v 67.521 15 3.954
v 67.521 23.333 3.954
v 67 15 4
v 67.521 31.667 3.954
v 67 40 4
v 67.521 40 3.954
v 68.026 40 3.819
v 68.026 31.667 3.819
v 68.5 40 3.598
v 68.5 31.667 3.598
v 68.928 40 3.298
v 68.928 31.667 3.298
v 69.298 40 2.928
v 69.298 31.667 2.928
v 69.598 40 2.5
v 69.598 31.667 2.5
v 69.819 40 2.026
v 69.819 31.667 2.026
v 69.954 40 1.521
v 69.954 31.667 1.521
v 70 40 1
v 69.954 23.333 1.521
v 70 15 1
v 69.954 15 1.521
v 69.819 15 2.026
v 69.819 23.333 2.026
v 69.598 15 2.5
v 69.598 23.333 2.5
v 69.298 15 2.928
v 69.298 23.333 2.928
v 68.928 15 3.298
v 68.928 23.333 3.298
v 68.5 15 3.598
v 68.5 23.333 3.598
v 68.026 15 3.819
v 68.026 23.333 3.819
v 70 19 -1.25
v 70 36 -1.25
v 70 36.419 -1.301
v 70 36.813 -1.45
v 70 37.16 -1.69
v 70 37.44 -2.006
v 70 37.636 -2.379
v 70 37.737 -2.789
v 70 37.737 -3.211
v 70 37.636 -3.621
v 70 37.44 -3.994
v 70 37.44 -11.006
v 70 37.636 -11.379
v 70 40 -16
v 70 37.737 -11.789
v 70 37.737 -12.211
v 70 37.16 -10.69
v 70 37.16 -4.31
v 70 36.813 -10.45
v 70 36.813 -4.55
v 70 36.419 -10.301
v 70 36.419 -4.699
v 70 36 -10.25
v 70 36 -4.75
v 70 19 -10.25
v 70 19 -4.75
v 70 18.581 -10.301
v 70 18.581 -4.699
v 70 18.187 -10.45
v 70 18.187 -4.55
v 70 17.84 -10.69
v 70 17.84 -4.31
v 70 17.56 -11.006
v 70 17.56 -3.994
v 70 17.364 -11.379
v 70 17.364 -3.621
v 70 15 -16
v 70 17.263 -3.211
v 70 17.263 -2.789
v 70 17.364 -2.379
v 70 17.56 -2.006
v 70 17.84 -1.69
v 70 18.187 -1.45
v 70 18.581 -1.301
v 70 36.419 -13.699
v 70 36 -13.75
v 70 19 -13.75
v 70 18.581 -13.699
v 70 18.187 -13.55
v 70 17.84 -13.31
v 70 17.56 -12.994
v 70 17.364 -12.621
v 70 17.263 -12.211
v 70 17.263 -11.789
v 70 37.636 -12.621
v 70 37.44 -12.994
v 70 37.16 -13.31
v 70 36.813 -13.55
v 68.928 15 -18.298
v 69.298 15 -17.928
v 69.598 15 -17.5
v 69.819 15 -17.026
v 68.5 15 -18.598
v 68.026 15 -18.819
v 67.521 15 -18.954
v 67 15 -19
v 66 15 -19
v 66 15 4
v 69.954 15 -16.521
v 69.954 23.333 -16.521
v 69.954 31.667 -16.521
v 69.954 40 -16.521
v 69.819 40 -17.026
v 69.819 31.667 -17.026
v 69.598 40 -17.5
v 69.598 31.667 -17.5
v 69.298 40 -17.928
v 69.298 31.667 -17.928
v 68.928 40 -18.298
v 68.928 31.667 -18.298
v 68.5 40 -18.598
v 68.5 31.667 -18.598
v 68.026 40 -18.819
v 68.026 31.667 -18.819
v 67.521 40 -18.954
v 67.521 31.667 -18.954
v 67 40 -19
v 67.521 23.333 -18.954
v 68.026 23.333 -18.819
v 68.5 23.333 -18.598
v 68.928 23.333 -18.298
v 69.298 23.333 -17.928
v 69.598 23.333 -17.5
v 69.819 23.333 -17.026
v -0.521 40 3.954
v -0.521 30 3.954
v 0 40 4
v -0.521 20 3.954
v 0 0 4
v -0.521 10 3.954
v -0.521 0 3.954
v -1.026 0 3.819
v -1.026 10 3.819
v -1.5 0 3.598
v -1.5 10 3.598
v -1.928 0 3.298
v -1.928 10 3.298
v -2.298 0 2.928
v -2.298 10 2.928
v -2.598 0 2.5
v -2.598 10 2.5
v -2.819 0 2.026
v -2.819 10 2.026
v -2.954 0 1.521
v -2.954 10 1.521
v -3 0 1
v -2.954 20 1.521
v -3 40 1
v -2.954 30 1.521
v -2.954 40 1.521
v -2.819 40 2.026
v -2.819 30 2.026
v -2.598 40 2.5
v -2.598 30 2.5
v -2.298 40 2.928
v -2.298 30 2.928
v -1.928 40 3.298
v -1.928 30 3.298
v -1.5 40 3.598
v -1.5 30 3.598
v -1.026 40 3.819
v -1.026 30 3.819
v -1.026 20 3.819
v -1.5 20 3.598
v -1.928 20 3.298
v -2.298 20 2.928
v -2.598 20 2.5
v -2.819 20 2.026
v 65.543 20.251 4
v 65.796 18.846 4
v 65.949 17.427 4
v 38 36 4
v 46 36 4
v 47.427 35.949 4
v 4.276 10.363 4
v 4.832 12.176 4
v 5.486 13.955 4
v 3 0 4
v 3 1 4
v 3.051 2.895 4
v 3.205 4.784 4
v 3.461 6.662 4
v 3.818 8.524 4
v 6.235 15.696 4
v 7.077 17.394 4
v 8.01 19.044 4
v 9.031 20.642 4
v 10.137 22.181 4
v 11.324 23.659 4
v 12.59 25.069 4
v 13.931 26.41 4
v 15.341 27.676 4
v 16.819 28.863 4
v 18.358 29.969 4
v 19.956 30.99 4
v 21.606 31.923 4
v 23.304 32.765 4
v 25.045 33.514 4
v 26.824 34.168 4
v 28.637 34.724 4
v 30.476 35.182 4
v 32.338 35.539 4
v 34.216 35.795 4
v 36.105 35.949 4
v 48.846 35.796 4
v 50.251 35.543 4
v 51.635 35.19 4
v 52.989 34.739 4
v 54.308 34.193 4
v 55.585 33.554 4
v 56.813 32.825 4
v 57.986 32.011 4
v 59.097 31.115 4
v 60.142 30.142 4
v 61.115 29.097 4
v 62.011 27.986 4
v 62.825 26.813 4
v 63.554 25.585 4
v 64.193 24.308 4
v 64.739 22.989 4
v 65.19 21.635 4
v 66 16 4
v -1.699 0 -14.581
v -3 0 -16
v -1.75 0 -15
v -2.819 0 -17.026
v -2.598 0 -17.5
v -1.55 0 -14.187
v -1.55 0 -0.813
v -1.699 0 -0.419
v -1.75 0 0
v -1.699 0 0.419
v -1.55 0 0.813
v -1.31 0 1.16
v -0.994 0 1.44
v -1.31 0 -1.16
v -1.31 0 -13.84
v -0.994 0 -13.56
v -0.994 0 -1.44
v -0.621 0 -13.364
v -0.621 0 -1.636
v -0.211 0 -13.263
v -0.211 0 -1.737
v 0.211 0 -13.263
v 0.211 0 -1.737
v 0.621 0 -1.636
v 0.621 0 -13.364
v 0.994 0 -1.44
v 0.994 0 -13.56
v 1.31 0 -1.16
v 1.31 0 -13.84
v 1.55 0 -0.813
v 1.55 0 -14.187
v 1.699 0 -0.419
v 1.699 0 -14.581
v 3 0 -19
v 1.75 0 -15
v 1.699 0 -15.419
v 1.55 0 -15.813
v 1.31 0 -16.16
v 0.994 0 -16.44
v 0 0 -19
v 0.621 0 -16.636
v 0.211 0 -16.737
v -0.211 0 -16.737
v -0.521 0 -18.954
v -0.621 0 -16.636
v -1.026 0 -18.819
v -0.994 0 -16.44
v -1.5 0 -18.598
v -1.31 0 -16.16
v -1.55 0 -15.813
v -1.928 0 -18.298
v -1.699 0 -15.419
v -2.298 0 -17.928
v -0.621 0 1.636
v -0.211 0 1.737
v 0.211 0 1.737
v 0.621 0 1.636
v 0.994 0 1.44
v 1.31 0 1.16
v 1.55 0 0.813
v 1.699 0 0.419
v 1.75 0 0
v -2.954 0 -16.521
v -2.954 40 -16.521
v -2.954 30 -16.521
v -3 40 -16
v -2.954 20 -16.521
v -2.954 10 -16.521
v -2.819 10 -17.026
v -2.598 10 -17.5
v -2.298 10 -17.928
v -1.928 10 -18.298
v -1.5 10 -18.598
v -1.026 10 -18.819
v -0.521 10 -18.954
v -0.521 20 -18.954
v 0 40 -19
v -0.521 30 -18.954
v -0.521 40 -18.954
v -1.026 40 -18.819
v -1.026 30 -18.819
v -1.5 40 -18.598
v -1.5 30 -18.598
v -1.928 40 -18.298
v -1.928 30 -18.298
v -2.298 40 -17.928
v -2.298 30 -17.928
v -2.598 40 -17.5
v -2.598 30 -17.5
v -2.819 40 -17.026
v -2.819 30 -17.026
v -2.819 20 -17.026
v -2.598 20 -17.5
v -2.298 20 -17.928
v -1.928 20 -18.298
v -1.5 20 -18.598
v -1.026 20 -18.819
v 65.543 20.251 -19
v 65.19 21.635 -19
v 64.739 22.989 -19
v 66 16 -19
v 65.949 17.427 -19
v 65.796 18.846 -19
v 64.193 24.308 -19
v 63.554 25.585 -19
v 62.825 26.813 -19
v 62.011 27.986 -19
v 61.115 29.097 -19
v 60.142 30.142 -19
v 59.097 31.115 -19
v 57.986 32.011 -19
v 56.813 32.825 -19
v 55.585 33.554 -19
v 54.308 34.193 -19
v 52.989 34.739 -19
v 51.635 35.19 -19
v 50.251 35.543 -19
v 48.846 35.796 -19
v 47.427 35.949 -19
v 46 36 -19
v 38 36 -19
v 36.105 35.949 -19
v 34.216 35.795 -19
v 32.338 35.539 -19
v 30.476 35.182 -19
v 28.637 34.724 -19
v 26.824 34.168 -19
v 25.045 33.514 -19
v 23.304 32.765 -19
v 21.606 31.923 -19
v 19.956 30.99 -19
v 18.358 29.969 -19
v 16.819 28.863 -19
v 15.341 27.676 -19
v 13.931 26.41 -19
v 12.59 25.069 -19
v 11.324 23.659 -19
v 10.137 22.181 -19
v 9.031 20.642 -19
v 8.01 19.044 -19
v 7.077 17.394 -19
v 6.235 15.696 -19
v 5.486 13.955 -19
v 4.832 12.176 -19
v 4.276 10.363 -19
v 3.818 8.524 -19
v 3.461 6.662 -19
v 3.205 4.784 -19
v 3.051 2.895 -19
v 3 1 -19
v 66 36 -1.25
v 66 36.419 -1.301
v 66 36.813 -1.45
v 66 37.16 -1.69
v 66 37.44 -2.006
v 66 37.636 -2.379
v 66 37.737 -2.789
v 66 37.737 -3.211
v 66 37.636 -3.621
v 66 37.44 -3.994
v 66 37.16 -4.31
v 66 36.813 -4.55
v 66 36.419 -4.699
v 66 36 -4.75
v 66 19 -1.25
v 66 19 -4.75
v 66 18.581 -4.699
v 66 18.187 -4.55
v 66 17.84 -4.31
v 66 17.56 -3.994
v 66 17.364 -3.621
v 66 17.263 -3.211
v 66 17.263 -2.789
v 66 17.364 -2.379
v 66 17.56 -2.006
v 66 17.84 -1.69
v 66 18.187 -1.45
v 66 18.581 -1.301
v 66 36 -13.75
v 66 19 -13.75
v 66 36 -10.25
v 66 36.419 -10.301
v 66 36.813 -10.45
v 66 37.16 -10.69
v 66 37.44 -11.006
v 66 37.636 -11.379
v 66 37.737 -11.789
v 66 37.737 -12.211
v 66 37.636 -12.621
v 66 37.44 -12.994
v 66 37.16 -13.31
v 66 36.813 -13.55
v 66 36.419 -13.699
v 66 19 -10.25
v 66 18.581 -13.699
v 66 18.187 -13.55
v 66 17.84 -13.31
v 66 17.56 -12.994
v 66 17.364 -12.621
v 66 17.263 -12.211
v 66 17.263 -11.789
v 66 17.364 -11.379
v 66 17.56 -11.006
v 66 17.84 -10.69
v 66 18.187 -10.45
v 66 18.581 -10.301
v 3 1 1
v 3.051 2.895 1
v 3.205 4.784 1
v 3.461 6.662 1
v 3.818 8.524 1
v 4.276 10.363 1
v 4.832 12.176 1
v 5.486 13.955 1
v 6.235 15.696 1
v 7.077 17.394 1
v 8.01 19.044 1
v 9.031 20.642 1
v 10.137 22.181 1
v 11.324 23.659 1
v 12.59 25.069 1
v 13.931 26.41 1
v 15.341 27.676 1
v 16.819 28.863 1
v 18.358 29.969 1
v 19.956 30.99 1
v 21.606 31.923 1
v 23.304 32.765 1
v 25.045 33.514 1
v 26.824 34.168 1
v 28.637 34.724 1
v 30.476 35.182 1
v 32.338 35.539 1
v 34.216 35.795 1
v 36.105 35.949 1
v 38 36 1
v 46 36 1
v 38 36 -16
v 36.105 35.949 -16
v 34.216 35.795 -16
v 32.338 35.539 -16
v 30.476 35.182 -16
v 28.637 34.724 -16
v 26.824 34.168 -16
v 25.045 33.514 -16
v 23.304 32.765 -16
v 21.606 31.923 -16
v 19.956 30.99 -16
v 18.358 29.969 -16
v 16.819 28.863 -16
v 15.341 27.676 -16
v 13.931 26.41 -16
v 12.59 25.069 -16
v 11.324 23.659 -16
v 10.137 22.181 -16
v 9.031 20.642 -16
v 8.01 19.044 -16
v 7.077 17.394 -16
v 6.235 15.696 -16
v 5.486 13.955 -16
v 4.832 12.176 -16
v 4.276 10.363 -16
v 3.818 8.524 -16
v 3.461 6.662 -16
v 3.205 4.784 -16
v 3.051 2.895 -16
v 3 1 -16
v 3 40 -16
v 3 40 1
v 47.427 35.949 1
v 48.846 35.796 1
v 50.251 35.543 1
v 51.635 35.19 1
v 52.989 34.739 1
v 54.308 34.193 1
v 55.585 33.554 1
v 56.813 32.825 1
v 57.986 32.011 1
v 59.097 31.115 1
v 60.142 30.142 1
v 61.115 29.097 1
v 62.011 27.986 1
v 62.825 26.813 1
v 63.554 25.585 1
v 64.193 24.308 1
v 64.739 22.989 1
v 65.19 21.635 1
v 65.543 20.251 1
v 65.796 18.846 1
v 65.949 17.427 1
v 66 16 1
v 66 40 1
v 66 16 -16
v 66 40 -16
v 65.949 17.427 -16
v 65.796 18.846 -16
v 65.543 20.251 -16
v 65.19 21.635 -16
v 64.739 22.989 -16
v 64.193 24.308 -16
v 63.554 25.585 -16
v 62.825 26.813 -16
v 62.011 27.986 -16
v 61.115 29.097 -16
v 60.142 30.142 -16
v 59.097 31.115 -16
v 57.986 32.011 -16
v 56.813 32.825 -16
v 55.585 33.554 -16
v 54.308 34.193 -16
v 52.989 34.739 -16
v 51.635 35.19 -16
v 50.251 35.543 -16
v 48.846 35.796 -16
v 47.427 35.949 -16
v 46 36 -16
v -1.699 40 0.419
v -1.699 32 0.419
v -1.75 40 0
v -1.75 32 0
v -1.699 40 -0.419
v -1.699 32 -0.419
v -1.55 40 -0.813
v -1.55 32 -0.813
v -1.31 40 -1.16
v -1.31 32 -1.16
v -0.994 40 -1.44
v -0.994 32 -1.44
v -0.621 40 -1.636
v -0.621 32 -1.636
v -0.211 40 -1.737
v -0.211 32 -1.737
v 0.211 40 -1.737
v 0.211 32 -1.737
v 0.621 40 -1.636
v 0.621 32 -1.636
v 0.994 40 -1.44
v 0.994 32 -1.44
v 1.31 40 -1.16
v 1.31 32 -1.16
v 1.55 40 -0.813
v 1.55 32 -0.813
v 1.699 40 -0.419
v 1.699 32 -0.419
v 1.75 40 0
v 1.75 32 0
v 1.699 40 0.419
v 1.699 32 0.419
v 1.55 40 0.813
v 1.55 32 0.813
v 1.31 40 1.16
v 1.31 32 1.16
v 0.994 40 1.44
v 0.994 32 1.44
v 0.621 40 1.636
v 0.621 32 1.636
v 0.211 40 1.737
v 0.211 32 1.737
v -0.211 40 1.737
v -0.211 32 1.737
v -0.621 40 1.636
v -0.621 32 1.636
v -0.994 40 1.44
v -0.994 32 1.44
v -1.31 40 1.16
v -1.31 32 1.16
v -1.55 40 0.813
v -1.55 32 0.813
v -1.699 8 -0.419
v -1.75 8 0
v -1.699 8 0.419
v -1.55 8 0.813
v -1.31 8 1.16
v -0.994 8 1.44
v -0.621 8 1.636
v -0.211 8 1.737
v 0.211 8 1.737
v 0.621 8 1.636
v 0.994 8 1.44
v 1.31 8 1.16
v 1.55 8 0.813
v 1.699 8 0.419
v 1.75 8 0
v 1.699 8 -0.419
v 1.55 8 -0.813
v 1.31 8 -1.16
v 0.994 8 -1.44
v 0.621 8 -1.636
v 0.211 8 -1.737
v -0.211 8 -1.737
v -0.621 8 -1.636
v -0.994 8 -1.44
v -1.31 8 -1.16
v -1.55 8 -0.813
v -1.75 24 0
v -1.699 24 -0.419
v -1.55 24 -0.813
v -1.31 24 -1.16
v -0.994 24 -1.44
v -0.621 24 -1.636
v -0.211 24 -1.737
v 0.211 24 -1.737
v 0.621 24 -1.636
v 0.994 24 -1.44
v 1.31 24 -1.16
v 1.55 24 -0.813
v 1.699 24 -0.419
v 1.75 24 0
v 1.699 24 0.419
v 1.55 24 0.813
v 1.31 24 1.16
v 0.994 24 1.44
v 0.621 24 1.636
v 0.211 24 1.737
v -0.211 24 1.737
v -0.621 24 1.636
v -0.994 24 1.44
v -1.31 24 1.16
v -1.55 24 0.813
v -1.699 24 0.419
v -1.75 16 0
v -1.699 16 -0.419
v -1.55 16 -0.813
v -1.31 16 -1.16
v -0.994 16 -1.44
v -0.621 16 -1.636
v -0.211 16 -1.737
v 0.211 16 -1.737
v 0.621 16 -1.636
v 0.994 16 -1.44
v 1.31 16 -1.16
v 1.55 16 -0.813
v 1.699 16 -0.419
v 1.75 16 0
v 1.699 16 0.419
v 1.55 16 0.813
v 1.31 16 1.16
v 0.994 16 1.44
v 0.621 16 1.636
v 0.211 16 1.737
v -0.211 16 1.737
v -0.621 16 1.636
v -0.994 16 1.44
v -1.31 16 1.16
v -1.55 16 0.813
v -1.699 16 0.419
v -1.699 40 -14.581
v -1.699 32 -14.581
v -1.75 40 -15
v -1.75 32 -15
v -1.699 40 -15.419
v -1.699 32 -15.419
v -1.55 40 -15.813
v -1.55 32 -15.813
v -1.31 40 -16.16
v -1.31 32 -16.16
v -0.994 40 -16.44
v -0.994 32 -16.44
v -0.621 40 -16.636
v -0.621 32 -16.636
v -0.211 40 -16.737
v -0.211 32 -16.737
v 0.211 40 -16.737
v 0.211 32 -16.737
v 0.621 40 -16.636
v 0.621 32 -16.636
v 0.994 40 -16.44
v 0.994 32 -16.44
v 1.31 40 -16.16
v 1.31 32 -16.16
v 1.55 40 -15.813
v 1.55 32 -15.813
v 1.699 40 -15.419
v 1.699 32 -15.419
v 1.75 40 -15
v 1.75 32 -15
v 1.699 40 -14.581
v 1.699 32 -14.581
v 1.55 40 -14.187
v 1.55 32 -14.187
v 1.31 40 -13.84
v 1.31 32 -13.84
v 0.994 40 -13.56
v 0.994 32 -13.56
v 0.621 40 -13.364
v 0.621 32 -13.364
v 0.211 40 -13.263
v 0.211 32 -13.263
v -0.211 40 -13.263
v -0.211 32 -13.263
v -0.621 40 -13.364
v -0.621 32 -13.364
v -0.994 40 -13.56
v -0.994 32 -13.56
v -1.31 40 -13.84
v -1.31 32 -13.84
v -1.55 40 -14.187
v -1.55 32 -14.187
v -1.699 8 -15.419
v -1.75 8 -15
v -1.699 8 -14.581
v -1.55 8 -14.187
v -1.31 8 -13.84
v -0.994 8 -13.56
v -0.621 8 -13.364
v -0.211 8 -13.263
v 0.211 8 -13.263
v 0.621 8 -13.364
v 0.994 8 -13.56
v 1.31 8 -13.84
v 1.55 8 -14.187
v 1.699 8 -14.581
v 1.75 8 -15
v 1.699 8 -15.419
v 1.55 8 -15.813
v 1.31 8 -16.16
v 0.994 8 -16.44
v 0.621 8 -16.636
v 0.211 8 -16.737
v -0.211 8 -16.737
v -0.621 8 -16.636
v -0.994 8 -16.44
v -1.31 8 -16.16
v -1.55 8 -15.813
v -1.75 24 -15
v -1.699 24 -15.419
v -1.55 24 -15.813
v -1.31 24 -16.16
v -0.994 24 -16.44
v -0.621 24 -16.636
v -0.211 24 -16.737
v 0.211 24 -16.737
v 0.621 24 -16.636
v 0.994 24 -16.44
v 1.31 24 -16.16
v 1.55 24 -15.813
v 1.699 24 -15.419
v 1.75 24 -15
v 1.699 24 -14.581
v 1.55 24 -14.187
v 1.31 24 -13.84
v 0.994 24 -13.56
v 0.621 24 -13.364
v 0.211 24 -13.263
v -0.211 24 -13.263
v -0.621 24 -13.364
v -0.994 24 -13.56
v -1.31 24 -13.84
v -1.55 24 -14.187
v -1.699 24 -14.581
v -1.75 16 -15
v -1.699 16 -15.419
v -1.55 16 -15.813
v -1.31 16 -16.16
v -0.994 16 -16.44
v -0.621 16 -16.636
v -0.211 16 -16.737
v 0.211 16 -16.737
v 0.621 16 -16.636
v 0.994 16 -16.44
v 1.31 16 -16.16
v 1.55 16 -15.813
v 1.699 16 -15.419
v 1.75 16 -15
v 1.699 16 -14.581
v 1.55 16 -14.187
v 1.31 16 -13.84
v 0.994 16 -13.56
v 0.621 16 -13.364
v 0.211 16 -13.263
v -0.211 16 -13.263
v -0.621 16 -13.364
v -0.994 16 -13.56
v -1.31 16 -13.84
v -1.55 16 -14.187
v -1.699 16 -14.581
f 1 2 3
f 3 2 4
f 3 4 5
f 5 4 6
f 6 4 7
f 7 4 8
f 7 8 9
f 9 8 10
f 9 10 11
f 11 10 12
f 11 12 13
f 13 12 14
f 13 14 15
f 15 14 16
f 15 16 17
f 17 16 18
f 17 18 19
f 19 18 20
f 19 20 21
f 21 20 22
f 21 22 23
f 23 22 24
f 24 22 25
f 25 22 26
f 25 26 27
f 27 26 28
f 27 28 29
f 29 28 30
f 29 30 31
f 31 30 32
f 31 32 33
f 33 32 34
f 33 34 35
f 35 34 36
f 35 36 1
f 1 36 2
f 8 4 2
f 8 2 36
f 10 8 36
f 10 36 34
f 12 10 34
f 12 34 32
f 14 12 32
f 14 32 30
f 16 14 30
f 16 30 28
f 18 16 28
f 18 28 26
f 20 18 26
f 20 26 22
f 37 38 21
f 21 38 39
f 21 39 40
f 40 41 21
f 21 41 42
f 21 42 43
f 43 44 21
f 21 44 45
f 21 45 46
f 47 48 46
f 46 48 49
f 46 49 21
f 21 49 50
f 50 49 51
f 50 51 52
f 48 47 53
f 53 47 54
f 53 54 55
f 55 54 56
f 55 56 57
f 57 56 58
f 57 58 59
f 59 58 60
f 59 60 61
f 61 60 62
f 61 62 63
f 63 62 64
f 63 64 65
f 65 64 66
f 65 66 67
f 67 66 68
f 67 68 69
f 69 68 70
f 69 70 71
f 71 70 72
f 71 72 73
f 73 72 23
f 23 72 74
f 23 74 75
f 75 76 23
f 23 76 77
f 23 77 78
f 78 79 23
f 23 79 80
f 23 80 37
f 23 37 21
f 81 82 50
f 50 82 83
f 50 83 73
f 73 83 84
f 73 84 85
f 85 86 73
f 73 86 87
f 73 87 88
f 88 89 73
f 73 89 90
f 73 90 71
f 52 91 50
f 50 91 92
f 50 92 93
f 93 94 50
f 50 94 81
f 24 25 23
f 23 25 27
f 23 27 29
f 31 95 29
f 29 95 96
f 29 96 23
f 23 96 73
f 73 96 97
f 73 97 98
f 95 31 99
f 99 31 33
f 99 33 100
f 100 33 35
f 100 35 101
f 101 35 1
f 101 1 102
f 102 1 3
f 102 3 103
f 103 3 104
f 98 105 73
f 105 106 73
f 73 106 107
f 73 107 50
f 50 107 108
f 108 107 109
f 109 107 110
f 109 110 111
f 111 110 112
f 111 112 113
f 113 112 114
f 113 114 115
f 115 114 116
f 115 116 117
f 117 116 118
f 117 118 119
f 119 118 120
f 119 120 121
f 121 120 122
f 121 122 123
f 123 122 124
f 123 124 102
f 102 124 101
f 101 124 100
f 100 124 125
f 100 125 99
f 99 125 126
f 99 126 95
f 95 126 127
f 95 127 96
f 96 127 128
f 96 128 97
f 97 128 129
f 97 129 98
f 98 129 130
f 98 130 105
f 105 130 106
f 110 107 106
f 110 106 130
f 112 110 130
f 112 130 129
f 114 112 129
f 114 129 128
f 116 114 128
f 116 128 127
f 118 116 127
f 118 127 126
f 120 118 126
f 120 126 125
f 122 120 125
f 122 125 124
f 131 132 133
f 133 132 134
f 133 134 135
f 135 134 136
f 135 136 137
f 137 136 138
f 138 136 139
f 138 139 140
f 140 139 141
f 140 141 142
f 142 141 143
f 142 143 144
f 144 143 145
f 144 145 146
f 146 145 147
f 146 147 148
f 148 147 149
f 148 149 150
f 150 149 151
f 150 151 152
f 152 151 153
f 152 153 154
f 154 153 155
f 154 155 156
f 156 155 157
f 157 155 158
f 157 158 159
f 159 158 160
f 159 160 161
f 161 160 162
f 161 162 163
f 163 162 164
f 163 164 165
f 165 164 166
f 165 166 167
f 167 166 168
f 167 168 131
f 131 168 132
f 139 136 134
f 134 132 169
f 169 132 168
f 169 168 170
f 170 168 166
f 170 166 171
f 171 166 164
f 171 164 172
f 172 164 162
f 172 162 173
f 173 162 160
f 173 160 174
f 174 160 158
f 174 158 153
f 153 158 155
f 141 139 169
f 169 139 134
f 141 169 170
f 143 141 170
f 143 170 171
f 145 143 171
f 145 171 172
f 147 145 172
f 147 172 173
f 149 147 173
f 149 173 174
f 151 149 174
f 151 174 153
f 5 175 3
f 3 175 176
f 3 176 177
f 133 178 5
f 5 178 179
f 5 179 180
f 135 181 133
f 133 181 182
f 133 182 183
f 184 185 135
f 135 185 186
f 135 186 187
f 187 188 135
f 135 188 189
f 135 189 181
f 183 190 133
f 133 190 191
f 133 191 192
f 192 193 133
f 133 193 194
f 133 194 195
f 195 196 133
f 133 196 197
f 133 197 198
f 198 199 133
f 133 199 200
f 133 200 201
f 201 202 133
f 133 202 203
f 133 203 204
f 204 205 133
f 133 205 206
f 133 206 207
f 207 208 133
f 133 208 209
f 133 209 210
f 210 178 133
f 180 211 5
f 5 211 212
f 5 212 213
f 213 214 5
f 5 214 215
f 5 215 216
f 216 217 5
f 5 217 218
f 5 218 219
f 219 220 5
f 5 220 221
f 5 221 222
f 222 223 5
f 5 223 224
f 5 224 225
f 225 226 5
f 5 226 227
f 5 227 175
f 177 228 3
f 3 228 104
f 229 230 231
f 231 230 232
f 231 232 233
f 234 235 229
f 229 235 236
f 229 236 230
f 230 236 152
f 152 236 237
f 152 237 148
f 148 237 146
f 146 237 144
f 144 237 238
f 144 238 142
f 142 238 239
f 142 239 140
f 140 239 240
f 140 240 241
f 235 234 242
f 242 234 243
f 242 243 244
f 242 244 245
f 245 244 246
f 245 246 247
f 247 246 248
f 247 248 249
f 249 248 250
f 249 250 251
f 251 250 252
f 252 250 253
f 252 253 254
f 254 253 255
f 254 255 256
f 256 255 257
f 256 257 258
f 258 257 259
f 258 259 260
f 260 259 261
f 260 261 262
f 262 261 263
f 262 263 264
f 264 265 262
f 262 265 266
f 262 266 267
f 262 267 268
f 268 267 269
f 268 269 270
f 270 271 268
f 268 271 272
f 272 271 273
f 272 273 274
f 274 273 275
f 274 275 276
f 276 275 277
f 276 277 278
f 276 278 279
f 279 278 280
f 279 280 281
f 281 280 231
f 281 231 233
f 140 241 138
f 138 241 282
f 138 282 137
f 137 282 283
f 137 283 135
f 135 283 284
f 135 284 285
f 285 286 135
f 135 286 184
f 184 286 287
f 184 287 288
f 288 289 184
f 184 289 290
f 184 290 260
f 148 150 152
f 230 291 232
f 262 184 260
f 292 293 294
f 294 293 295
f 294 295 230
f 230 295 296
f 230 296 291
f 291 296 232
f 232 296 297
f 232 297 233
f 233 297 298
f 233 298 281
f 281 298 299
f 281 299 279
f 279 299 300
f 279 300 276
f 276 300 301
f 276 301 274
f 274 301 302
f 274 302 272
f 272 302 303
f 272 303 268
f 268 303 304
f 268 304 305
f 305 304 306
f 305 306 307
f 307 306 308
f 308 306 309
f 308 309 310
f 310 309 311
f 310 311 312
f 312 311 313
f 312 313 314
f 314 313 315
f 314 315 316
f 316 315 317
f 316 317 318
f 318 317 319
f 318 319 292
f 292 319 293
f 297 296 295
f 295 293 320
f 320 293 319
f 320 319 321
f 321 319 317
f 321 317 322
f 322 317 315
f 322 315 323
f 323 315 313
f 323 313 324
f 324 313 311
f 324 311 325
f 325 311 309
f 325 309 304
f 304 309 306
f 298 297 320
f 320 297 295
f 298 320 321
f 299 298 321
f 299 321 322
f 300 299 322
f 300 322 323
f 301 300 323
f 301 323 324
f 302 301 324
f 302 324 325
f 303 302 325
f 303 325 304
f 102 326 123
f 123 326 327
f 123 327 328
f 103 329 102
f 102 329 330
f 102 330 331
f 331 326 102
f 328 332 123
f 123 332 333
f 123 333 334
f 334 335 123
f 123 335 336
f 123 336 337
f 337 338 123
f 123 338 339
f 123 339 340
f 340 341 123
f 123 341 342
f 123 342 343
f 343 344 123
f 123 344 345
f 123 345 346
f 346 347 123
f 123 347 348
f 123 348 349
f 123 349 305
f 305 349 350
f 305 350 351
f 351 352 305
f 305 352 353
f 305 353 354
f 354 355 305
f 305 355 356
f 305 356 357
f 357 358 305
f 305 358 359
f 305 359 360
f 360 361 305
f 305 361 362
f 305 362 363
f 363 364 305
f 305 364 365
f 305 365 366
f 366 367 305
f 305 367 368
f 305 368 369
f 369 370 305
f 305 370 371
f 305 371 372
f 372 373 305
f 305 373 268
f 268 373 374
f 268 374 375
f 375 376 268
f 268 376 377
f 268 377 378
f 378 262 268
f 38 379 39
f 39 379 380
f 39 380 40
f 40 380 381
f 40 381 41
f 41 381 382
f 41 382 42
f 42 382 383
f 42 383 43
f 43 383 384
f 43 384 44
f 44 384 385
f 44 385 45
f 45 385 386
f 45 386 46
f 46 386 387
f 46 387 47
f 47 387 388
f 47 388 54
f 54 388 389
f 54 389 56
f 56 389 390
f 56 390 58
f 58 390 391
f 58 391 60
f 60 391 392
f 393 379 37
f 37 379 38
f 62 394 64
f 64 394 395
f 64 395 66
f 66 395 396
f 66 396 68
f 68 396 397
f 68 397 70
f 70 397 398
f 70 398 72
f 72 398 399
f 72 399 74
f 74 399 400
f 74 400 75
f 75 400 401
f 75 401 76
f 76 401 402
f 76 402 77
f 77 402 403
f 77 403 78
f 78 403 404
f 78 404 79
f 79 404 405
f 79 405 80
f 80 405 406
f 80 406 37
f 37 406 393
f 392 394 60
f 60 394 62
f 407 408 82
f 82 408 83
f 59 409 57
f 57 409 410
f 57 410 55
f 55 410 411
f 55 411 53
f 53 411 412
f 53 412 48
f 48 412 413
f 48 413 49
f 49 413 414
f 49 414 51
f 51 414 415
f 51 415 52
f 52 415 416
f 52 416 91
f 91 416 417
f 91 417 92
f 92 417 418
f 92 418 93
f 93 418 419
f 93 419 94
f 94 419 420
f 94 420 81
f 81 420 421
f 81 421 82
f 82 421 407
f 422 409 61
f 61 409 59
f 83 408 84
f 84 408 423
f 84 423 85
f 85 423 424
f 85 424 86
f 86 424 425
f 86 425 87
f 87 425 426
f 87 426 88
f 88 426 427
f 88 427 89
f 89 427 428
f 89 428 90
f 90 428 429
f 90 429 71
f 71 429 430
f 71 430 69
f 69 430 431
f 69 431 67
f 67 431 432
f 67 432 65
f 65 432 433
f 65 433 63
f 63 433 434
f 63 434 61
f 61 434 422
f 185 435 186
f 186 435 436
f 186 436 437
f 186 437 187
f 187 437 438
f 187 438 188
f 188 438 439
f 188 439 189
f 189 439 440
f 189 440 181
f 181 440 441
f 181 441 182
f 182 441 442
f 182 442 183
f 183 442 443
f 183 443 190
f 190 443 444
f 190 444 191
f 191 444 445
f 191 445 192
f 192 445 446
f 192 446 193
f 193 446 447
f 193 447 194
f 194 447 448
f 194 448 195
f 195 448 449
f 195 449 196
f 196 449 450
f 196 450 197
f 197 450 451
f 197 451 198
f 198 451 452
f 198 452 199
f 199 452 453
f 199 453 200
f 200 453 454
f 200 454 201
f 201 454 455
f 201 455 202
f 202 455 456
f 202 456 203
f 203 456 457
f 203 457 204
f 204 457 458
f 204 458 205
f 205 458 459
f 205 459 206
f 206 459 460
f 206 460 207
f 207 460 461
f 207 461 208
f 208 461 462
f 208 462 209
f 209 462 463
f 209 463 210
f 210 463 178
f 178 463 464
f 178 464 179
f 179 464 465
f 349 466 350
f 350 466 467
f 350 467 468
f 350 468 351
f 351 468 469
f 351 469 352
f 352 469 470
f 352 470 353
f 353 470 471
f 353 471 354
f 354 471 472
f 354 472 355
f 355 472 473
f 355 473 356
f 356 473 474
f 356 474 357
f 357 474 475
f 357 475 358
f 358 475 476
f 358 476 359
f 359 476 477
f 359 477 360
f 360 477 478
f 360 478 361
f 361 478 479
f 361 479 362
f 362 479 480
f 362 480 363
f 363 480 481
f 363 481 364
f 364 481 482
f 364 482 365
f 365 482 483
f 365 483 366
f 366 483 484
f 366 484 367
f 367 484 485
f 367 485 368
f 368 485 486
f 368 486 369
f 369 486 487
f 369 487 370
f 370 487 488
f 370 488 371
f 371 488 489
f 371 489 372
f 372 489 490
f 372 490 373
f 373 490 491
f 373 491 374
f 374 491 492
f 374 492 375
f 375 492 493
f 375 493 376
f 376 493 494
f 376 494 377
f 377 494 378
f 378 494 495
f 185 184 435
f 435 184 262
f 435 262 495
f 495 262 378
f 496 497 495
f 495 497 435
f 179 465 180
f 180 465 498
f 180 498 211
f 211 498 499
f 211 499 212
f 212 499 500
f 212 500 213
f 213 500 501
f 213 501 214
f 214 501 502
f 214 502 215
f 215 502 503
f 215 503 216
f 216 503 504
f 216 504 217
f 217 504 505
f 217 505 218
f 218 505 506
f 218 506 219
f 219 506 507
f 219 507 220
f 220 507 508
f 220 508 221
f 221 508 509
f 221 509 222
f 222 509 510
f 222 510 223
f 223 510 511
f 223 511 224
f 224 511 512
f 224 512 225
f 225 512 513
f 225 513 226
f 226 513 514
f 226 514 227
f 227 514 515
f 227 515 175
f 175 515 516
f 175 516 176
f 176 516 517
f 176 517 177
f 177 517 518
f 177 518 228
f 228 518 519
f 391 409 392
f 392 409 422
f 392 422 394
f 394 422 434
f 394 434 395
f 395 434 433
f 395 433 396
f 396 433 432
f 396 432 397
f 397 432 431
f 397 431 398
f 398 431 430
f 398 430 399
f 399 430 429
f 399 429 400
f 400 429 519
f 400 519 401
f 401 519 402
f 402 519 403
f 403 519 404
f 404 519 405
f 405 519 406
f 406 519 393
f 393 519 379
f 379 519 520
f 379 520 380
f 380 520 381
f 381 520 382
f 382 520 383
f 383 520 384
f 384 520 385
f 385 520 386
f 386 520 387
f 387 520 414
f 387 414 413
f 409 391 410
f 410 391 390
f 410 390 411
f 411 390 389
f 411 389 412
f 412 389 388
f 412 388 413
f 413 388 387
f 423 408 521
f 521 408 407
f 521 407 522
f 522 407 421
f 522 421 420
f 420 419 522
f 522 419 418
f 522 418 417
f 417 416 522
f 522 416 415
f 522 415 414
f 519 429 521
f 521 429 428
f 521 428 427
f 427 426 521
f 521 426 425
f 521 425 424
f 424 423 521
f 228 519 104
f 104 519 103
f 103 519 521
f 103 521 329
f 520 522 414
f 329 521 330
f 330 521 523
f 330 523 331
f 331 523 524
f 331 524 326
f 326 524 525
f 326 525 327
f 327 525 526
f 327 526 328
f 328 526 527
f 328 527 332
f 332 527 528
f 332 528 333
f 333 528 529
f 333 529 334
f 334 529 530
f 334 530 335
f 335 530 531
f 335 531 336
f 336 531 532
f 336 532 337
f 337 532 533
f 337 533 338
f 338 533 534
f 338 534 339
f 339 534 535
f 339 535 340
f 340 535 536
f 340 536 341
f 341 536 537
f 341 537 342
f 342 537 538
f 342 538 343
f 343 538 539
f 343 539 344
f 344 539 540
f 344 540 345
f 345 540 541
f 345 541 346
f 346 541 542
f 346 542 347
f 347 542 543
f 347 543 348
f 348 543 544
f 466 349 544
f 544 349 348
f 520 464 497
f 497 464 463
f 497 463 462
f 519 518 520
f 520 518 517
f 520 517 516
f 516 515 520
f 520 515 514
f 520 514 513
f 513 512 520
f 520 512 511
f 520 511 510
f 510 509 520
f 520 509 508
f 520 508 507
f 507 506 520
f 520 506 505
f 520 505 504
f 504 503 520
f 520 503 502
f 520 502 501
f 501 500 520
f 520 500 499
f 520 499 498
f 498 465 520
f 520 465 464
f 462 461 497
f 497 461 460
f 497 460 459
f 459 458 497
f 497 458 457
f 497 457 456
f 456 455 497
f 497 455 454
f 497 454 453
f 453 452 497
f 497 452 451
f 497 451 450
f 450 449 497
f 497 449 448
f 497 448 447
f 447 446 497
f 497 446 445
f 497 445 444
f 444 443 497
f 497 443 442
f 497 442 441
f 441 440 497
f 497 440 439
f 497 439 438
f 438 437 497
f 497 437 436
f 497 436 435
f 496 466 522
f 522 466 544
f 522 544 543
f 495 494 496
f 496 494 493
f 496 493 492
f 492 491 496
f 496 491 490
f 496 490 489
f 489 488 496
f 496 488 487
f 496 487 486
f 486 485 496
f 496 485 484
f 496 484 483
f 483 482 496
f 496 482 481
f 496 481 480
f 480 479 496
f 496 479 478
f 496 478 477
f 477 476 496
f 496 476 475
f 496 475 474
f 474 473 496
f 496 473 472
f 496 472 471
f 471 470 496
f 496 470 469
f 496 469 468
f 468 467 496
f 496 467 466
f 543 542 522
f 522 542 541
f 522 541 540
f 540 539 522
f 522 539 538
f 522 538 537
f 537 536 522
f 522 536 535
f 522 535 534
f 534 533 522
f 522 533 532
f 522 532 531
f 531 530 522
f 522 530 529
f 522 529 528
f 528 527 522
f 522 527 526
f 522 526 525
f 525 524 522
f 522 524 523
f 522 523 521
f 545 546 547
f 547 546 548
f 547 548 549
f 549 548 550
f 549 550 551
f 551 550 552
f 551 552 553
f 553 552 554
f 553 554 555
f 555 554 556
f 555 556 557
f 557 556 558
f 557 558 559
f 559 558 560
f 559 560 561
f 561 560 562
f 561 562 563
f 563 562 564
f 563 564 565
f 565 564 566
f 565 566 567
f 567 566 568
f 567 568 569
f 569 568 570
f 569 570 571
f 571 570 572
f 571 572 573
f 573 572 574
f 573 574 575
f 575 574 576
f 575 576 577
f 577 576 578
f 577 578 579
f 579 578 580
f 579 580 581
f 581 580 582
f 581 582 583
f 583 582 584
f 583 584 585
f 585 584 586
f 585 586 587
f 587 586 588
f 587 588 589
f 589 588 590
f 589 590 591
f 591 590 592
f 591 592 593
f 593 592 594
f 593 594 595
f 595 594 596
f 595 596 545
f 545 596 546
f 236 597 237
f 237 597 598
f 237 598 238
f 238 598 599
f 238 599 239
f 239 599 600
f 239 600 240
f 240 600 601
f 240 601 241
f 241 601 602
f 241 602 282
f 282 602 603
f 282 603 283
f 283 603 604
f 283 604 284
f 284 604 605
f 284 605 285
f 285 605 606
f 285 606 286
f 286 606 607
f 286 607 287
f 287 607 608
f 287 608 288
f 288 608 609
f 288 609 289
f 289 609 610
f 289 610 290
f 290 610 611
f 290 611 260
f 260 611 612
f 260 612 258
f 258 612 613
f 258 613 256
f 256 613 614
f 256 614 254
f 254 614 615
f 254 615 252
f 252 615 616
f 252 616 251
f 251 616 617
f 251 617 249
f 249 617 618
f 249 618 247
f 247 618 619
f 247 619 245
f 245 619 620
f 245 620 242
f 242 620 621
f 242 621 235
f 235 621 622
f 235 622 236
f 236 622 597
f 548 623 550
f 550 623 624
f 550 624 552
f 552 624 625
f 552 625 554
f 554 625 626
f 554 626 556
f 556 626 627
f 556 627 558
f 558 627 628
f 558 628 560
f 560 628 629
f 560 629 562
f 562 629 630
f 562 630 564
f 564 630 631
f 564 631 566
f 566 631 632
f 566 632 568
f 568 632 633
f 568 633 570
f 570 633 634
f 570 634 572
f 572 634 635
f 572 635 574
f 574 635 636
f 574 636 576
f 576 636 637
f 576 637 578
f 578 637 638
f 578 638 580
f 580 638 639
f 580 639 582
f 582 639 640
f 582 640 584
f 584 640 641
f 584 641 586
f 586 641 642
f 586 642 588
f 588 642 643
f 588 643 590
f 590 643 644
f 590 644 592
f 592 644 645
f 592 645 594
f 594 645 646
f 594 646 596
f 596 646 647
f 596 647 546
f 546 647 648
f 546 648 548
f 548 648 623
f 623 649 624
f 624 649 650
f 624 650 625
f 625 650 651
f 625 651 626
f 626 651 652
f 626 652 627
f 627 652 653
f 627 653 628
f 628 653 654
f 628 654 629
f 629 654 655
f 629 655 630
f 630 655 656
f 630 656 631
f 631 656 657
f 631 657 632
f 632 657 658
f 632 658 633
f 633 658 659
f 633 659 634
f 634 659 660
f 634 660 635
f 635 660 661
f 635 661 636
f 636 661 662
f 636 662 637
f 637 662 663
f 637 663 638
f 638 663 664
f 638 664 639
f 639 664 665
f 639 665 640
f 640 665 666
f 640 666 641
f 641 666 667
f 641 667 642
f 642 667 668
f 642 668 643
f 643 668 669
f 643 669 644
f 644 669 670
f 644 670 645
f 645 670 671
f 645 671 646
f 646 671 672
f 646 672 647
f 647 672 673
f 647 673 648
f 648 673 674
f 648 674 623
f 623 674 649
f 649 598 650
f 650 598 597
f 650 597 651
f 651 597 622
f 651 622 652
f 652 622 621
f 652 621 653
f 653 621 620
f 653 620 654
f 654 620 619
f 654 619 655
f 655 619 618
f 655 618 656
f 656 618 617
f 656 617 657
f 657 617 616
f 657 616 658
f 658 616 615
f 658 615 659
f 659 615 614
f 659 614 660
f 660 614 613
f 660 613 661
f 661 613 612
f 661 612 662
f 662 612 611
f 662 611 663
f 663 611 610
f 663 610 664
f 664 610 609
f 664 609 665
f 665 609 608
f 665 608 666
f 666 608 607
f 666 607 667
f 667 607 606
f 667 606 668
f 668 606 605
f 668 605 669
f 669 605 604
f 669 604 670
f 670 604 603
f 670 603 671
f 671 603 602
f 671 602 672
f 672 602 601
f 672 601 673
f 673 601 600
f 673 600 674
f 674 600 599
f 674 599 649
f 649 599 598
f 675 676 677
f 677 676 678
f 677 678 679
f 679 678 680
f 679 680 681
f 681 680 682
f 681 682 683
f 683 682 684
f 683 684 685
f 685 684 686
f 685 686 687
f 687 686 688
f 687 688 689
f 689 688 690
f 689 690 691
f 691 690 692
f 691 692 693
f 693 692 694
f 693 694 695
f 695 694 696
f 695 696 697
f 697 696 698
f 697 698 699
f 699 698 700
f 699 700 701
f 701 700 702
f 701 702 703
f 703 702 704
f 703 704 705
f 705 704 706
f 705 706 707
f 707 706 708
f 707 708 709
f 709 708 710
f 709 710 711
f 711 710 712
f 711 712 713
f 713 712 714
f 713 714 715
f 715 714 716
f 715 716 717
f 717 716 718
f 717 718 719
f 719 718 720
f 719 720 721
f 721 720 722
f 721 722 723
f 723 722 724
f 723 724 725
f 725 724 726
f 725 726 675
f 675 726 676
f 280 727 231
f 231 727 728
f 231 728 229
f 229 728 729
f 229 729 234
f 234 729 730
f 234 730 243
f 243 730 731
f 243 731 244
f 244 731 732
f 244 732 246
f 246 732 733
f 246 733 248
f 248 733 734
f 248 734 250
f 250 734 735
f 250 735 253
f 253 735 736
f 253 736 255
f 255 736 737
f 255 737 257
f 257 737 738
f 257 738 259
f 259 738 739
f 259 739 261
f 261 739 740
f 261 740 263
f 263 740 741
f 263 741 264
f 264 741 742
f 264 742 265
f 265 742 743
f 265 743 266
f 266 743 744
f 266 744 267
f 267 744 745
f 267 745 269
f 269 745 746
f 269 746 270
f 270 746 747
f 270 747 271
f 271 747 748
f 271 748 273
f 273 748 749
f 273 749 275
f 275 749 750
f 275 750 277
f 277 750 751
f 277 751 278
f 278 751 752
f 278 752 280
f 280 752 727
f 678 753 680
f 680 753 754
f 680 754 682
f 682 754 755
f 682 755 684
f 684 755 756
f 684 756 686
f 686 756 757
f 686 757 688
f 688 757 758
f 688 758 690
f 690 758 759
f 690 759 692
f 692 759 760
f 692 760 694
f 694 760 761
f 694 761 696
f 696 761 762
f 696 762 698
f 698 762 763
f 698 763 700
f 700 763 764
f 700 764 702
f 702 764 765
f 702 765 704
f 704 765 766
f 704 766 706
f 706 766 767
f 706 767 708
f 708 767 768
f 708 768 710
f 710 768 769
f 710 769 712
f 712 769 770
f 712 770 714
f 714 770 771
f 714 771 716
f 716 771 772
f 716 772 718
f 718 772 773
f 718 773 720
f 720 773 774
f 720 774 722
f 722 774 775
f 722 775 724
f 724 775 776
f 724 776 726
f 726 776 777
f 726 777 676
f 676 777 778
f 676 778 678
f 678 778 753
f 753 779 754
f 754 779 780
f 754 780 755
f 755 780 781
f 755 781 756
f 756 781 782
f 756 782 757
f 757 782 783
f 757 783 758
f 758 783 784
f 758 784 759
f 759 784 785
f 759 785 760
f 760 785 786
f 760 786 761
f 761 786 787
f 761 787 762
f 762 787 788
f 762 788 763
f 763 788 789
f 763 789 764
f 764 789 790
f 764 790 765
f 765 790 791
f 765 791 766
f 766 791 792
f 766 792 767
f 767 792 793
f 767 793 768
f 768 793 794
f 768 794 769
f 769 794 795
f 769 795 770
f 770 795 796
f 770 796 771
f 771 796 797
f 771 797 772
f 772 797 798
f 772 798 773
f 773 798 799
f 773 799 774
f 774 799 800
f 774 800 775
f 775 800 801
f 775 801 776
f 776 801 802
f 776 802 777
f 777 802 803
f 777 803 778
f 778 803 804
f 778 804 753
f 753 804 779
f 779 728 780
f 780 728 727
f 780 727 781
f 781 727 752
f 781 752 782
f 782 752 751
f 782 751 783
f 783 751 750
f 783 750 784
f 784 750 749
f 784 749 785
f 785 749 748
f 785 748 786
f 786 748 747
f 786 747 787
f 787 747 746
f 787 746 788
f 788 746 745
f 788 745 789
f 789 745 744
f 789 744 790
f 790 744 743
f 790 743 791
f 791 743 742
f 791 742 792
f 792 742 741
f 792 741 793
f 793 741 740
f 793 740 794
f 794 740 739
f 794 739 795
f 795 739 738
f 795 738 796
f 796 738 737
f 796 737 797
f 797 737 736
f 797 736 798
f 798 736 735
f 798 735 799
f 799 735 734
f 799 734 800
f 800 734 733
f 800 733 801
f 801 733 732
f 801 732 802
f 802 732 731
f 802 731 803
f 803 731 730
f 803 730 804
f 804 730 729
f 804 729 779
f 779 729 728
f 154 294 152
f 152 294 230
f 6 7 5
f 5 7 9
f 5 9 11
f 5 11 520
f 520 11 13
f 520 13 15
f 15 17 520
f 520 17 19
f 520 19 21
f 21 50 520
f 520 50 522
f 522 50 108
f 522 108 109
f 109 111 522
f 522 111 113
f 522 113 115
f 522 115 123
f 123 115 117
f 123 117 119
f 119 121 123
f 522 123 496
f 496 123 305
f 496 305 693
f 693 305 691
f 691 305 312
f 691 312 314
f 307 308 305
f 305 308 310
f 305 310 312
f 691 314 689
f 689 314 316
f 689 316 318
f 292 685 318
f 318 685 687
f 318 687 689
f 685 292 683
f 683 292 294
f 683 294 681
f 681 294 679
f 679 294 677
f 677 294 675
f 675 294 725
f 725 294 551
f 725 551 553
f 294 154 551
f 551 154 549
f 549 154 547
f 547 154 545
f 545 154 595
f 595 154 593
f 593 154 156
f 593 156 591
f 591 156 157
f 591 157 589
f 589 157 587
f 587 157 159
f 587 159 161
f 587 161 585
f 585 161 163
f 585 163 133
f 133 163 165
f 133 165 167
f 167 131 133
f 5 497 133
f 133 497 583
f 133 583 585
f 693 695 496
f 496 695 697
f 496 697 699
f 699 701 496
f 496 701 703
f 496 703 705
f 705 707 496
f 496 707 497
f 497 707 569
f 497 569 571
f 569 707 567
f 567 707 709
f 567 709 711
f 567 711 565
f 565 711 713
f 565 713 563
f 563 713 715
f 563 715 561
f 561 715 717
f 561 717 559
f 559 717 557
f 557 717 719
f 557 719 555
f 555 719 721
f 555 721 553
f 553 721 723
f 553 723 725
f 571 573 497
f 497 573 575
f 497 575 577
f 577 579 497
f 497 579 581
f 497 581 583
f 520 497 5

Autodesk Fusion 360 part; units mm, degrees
sketch "Sketch1" plane through (0, 0, 0) normal (0, 1, 0) x (1, 0, 0)
  circle A0 centre (0, 0) radius 1.75
  circle A1 centre (0, 15) radius 1.75
  line L0 (-3, 19) -> (3, 19)
  line L1 (3, 19) -> (3, -4)
  line L2 (3, -4) -> (-3, -4)
  line L3 (-3, -4) -> (-3, 19)
  dimension "d1" = 3.5
  dimension "d2" = 3.5
  dimension "d3" = 15
  dimension "d4" = 4
  dimension "d5" = 4
extrude "Extrude1" add sketch "Sketch1" along normal blind 40 makes body 1
sketch "Sketch2" plane through (0, 40, 0) normal (0, 1, 0) x (-1, 0, 0)
  circle A0 centre (0, -15) radius 1.75
  circle A1 centre (0, 0) radius 1.75
  line L0 (3, 4) -> (-3, 4)
  line L1 (-3, 4) -> (-3, -19)
  line L2 (-3, -19) -> (3, -19)
  line L3 (3, -19) -> (3, 4)
  line L4 (-66, -19) -> (-70, -19)
  line L5 (-70, -19) -> (-70, 4)
  line L6 (-70, 4) -> (-66, 4)
  line L7 (-66, 4) -> (-66, -19)
  dimension "d8" = 4
  dimension "d10" = 70
extrude "Extrude2" add sketch "Sketch2" against normal blind 25 separate body contours L4 L5 L6 L7 makes body 2
sketch "Sketch3" plane through (0, 40, 0) normal (0, 1, 0) x (-1, 0, 0)
  circle A0 centre (0, -15) radius 1.75
  circle A1 centre (0, 0) radius 1.75
  line L0 (3, 4) -> (-3, 4)
  line L1 (-3, 4) -> (-3, -19)
  line L2 (-3, -19) -> (3, -19)
  line L3 (3, -19) -> (3, 4)
  line L4 (-3, -19) -> (-66, -19)
  line L5 (-66, -19) -> (-66, -16)
  line L6 (-66, -16) -> (-3, -16)
  line L7 (-3, -16) -> (-3, -19)
  line L8 (-3, 4) -> (-66, 4)
  line L9 (-66, 4) -> (-66, 1)
  line L10 (-66, 1) -> (-3, 1)
  line L11 (-3, 1) -> (-3, 4)
extrude "Extrude3" add sketch "Sketch3" against normal blind 4 contours L1 L8 L9 L10 L11 | L1 L4 L5 L6 L7 bodies 1 2
fillet "Fillet1" radius 20 2 edges at (66, 36, -17.5) (66, 36, 2.5) on bodies 1
fillet "Fillet2" radius 35 2 edges at (3, 36, -17.5) (3, 36, 2.5) on bodies 1
sketch "Sketch4" plane through (70, 0, 0) normal (1, 0, 0) x (0, 0, -1)
  line L0 (19, 40) -> (-4, 40)
  line L1 (-4, 40) -> (-4, 15)
  line L2 (-4, 15) -> (19, 15)
  line L3 (19, 15) -> (19, 40)
  circle A0 centre (3, 36) radius 1.75
  circle A1 centre (3, 19) radius 1.75
  circle A2 centre (12, 36) radius 1.75
  circle A3 centre (12, 19) radius 1.75
  line L4 (4.75, 19) -> (4.75, 36)
  line L5 (1.25, 36) -> (1.25, 19)
  line L6 (13.75, 36) -> (13.75, 19)
  line L7 (10.25, 19) -> (10.25, 36)
  dimension "d17" = 3.5
  dimension "d18" = 3.5
  dimension "d19" = 3.5
  dimension "d20" = 3.5
  dimension "d21" = 7
  dimension "d22" = 7
  dimension "d23" = 4
  dimension "d24" = 4
extrude "Extrude4" cut sketch "Sketch4" against normal up to surface (4 mm away) contours A0 | A0 A1 L4 L5 | A1 | A2 | A2 A3 L6 L7 | A3 bodies 1
fillet "Fillet3" radius 3 4 edges at (-3, 20, -19) (-3, 20, 4) (70, 27.5, -19) (70, 27.5, 4) on bodies 1
equation "d21 = d22"
equation "d24 = d23"
